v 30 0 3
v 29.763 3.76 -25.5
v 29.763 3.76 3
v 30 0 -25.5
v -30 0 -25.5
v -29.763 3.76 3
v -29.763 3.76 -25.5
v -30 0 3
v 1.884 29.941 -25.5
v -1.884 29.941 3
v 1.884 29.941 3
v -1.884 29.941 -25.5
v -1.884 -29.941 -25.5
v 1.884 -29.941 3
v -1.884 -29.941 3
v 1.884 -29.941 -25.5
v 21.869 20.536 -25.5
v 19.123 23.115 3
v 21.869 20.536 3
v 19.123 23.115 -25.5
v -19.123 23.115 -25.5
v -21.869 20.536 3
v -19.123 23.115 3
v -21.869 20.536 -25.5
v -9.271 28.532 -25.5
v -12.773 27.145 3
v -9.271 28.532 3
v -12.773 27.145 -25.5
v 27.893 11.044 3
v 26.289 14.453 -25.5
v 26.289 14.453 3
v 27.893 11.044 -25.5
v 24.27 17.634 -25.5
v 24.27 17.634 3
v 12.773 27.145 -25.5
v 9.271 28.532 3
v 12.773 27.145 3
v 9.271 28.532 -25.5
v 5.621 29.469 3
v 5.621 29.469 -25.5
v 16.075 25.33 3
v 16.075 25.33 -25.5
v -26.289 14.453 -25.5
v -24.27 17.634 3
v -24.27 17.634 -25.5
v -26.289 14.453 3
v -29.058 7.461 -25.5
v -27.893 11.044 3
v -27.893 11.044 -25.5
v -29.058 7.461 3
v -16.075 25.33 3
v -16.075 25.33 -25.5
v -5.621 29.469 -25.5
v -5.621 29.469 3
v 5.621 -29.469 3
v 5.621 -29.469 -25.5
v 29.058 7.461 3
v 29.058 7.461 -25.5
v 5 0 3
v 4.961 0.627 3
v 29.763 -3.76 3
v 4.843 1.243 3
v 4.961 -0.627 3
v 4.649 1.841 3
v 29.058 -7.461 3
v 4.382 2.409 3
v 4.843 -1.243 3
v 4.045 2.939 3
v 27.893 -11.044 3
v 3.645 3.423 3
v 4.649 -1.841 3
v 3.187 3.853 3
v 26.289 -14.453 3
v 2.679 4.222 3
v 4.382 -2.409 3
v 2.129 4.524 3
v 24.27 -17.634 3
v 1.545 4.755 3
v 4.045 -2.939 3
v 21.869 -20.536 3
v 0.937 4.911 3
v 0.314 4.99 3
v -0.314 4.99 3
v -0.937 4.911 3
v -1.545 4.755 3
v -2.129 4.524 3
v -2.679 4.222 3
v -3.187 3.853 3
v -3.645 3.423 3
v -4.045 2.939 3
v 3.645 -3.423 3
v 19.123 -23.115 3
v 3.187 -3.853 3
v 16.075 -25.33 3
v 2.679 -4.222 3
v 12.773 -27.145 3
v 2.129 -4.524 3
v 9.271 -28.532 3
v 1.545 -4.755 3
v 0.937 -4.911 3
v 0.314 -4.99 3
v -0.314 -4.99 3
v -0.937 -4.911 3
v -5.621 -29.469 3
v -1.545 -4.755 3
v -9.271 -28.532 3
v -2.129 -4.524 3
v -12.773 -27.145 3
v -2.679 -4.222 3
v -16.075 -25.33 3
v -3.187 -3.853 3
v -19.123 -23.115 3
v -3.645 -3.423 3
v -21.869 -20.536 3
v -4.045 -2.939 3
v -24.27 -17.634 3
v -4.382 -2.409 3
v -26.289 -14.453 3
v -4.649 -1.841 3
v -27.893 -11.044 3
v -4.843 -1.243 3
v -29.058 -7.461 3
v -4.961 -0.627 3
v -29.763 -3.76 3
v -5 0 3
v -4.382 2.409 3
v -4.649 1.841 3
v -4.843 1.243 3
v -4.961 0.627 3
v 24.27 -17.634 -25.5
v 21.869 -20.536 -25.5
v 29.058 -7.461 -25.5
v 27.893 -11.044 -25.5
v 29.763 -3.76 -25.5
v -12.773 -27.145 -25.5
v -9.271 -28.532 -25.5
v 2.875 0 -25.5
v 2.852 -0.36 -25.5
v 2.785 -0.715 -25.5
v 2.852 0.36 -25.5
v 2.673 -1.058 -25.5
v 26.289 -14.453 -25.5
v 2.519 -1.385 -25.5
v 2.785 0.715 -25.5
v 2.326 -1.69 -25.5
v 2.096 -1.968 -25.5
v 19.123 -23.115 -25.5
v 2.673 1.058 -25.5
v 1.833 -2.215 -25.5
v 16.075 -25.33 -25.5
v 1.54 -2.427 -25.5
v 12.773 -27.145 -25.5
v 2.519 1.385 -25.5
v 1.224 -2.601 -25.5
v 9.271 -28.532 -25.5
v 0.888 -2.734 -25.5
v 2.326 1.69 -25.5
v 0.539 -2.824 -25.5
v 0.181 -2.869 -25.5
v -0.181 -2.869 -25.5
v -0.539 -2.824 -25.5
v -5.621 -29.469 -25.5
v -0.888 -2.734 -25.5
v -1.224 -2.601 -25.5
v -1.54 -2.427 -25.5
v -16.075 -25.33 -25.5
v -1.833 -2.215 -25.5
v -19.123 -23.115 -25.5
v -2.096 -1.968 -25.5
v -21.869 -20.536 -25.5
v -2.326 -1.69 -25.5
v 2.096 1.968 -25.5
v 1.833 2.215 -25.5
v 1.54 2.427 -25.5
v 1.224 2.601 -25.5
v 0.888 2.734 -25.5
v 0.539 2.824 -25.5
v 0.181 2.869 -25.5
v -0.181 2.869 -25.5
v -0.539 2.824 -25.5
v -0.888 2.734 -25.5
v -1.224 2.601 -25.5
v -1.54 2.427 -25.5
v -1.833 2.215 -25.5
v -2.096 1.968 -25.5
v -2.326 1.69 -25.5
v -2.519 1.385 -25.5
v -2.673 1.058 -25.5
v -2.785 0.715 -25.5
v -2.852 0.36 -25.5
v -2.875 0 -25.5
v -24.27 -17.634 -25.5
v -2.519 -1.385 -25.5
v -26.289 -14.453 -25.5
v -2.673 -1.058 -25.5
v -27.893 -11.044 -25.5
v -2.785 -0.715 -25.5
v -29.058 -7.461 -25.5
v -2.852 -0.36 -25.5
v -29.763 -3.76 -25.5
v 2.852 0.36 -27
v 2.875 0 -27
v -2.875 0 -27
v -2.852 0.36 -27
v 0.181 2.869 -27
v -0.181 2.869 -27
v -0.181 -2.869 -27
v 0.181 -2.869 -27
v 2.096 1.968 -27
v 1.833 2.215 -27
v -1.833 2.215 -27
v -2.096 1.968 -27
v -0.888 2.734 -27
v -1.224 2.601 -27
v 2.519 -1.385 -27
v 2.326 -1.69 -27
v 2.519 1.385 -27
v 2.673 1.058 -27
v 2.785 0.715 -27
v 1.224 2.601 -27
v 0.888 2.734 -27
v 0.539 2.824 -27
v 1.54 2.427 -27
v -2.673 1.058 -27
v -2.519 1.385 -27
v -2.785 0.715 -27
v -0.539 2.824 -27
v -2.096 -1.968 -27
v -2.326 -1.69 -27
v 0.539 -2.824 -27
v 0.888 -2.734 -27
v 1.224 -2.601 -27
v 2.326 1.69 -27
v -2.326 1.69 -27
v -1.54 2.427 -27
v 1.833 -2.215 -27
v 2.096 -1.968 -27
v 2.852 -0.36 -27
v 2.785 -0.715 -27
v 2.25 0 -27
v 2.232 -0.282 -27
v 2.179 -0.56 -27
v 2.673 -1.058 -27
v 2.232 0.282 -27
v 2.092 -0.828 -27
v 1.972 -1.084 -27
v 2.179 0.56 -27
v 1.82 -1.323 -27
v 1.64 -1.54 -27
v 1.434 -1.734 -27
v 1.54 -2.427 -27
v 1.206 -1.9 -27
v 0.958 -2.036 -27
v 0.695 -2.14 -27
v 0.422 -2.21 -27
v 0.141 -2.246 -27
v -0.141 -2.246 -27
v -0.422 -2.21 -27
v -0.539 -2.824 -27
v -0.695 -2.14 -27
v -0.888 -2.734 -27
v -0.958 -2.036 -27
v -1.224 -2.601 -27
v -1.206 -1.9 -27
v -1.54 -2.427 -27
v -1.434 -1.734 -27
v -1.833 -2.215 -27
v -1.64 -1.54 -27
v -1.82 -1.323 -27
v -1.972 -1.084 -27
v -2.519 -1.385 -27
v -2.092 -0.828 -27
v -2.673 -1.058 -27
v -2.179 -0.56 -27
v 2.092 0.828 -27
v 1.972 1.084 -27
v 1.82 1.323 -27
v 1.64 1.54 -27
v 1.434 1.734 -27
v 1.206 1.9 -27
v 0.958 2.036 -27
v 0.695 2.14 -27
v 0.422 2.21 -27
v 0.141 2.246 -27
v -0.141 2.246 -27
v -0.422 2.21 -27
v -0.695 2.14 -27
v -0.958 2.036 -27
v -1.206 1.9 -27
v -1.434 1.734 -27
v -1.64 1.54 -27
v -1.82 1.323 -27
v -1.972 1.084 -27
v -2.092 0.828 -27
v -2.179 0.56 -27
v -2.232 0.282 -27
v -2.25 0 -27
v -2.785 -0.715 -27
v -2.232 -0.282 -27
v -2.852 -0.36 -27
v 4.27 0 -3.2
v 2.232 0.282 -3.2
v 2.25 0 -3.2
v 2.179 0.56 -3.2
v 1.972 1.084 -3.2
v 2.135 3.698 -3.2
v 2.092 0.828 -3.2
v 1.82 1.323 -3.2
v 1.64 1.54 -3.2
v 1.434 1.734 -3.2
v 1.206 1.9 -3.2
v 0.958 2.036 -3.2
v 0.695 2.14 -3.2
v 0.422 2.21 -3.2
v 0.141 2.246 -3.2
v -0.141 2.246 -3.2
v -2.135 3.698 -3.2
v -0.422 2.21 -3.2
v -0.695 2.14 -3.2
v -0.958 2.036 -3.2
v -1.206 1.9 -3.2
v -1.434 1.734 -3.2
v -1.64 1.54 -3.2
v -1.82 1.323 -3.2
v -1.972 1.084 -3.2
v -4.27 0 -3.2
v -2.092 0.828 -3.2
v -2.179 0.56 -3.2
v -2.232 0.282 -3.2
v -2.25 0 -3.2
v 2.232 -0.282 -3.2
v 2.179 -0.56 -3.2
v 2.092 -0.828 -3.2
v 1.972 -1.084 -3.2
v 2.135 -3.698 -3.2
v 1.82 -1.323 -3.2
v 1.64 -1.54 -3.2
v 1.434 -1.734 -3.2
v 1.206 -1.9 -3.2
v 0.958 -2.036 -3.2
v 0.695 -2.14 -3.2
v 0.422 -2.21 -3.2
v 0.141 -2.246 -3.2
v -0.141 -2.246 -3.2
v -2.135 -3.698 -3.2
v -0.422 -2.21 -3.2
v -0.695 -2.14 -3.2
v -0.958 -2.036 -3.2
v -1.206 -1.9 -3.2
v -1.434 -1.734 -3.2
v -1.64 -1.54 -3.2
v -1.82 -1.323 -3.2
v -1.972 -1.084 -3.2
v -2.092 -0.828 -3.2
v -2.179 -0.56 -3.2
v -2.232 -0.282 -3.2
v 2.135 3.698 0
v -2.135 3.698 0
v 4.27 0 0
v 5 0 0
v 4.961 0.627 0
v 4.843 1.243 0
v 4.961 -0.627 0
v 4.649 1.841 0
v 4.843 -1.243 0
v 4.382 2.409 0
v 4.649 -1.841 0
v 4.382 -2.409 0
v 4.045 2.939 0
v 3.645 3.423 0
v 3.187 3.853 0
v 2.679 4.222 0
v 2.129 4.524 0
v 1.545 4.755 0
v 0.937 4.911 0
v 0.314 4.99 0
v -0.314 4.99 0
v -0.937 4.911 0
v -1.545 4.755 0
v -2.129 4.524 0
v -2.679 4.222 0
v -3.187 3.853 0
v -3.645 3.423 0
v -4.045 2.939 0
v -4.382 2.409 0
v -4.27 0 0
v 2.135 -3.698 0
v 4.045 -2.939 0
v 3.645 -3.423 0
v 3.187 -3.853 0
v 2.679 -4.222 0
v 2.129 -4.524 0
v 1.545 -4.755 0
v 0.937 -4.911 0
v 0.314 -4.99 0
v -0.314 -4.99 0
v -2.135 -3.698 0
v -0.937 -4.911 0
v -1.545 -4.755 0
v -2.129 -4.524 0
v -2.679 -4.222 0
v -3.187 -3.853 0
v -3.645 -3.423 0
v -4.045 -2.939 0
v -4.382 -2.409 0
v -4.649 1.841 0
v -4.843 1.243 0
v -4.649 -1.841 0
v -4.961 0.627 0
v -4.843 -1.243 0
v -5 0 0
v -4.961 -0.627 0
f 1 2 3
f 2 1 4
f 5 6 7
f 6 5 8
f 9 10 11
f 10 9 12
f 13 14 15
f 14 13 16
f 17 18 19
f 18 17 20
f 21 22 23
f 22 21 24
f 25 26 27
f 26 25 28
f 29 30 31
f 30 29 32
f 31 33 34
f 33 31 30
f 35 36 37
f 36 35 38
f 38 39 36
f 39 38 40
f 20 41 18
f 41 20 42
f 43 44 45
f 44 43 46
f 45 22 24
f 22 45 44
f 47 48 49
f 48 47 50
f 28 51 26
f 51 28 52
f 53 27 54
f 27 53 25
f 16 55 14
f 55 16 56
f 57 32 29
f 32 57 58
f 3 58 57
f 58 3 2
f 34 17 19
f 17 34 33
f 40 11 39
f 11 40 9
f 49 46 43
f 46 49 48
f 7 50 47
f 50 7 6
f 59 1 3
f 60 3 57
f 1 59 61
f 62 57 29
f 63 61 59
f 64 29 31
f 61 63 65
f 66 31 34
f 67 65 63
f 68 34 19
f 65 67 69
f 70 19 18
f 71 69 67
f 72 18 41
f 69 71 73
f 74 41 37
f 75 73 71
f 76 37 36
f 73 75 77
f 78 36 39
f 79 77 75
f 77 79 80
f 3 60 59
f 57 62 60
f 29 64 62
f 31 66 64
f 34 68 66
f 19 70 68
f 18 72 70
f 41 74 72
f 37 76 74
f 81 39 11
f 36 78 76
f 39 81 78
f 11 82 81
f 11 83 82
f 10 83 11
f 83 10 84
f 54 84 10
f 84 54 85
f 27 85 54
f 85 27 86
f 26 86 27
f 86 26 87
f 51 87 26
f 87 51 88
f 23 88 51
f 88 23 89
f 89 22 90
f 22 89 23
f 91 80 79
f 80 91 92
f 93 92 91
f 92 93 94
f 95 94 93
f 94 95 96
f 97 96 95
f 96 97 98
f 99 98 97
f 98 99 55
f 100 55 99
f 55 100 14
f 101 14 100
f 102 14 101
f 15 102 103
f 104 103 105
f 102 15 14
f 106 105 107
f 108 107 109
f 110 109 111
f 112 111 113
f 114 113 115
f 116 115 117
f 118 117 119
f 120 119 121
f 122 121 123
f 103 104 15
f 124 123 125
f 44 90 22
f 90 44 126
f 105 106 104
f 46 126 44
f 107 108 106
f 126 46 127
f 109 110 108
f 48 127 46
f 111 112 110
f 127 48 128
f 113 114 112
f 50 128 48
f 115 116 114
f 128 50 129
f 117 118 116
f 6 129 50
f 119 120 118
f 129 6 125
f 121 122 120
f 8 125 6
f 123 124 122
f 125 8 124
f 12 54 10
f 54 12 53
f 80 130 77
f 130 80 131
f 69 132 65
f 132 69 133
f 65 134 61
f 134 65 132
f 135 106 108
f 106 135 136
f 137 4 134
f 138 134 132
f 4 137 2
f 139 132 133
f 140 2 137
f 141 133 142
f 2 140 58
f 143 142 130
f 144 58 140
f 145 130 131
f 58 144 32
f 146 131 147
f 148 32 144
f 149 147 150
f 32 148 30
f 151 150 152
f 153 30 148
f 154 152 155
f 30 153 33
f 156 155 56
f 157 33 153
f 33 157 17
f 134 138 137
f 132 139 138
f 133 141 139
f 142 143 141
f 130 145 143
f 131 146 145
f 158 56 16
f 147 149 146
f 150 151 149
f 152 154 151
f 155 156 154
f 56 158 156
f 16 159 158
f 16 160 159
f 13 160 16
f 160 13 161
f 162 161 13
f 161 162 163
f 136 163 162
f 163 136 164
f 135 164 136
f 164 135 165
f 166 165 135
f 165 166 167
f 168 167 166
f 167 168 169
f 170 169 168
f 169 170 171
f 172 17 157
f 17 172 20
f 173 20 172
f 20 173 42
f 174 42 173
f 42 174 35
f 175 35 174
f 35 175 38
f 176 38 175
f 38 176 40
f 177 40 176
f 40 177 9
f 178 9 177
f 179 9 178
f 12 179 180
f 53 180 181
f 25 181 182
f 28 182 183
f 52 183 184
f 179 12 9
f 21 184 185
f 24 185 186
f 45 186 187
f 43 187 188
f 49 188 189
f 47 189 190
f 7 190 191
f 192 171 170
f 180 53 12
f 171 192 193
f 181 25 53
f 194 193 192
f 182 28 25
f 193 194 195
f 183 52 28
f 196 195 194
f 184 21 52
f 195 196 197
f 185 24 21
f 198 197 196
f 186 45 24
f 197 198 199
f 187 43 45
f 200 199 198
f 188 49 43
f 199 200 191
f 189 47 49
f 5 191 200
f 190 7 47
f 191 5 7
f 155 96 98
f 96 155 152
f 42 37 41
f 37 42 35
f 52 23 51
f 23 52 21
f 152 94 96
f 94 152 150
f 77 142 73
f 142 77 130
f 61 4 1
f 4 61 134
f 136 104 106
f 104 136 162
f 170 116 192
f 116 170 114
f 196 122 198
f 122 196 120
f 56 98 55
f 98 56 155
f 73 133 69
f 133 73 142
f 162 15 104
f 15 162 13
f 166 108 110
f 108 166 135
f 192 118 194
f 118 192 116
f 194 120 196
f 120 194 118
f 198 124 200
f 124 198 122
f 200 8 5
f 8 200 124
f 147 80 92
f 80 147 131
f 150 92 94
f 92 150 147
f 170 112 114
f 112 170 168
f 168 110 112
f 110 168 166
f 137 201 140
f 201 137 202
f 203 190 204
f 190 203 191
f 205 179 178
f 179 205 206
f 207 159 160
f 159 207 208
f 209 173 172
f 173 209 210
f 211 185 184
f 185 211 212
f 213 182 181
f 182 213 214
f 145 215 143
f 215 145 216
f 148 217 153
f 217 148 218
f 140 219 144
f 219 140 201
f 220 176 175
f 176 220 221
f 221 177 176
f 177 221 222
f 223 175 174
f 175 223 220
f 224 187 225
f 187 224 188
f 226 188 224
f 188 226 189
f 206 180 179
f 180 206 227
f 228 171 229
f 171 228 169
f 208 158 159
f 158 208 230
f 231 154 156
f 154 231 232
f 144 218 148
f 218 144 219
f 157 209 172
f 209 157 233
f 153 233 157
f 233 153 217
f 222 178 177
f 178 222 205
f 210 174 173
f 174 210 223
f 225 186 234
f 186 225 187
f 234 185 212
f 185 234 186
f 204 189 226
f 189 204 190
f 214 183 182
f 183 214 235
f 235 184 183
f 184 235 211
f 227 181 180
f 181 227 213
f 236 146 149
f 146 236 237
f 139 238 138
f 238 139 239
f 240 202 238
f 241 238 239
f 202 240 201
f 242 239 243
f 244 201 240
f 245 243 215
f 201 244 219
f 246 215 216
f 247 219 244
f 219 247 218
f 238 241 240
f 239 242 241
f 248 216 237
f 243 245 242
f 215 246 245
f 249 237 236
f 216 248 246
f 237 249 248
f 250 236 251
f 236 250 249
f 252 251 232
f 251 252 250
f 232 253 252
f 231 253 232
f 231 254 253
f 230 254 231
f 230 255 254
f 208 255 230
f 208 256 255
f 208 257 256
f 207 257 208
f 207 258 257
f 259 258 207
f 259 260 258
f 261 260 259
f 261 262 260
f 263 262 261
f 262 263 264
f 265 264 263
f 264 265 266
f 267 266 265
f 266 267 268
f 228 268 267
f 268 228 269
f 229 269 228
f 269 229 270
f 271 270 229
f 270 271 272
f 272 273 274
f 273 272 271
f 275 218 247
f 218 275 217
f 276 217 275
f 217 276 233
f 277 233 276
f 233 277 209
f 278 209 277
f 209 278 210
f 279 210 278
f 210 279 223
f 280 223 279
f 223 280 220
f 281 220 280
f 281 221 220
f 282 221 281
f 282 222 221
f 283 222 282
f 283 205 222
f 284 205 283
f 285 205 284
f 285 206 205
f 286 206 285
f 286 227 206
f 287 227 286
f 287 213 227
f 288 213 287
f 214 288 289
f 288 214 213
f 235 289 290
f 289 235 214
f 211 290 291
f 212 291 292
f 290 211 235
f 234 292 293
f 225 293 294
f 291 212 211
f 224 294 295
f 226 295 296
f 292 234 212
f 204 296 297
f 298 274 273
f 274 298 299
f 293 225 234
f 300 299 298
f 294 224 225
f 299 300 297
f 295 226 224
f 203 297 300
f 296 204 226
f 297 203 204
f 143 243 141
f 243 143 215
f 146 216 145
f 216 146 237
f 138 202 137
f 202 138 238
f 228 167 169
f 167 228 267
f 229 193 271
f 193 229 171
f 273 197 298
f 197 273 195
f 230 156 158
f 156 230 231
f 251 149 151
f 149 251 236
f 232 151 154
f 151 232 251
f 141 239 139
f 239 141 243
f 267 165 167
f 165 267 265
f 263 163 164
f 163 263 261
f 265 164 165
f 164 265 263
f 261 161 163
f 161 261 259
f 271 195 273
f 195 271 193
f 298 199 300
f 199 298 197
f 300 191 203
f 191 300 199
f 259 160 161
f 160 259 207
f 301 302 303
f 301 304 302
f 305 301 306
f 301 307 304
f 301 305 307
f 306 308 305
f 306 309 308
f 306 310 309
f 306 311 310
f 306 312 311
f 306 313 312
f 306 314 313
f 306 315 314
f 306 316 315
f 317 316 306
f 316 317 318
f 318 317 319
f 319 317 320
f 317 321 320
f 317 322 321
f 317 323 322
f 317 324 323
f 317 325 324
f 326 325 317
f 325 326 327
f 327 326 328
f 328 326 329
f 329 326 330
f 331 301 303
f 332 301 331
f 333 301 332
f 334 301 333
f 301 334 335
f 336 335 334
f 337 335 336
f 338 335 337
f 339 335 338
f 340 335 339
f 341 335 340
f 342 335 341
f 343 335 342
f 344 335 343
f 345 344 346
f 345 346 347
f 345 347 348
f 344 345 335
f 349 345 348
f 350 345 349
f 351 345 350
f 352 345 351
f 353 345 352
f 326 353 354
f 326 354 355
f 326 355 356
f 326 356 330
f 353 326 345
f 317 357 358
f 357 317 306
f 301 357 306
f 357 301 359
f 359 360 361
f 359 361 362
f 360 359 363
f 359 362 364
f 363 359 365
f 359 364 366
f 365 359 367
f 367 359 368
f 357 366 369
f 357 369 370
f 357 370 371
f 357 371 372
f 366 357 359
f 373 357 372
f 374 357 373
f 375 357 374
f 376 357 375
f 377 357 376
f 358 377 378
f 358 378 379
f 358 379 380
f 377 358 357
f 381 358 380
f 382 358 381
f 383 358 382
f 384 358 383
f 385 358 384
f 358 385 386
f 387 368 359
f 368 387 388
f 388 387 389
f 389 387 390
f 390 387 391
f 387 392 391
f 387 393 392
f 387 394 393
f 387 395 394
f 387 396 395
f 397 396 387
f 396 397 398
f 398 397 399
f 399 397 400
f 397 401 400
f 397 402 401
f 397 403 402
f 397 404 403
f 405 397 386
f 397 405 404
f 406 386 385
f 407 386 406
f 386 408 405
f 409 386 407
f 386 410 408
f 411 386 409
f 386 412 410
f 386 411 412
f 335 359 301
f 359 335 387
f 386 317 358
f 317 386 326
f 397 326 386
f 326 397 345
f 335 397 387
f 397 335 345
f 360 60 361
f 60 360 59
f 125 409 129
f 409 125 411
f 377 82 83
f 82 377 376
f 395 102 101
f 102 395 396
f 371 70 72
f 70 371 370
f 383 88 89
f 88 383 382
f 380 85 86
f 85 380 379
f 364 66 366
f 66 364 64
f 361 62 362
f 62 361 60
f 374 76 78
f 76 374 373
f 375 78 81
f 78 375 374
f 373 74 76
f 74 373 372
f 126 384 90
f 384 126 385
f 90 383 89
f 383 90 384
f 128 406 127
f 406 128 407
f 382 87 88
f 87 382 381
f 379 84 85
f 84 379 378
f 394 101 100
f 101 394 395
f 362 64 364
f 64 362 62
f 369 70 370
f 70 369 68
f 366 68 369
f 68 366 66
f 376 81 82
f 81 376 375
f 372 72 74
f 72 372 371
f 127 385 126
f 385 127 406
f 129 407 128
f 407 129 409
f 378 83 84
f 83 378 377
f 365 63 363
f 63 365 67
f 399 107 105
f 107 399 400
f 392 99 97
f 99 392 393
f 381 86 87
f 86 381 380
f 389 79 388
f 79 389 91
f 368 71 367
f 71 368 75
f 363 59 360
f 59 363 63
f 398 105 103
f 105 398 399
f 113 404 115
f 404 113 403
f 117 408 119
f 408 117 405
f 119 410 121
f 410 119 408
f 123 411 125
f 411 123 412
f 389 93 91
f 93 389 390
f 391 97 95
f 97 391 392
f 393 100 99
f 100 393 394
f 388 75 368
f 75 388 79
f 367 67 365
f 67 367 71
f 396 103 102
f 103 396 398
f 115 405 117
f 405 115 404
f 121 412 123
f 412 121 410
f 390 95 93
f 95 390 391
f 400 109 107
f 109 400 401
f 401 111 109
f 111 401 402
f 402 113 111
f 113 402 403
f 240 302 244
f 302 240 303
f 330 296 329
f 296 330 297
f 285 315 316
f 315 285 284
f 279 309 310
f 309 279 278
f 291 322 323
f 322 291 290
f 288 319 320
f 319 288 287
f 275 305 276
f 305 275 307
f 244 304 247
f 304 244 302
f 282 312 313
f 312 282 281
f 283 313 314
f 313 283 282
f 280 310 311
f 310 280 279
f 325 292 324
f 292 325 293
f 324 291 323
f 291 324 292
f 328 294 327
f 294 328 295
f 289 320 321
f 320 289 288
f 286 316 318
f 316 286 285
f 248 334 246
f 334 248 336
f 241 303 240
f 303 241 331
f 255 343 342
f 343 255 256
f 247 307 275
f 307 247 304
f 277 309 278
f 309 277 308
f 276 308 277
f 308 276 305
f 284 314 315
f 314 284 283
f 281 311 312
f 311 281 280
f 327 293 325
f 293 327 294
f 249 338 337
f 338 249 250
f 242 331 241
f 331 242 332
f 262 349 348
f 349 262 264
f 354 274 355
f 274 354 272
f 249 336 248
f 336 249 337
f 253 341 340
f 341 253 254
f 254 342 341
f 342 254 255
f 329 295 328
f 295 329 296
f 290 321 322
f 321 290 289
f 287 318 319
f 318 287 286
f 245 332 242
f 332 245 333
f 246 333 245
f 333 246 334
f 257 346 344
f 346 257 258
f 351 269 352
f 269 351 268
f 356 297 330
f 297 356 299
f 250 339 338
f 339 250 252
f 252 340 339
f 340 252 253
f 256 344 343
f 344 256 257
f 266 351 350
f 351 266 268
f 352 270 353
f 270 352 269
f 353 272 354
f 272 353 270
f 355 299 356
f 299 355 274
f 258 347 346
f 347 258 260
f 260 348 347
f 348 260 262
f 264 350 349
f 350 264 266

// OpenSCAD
$fn = 50;

difference() {
	union() {
		translate(v = [0, 0, -25.5]) {
			cylinder(h = 28.5, r = 30.0);
		}
		#translate(v = [0, 0, -27.0]) {
			cylinder(h = 27, r = 2.875);
		}
	}
	union() {
		translate(v = [0, 0, 0]) {
			rotate(a = [0, 0, 0]) {
				difference() {
					union() {
						translate(v = [0, 0, -3.2]) {
							linear_extrude(height = 3.2) {
								polygon(points = [[4.2698, 0.0], [2.1349000000000005, 3.697755269078796], [-2.134899999999999, 3.6977552690787965], [-4.2698, 5.228996902999369e-16], [-2.134900000000002, -3.6977552690787956], [2.1348999999999974, -3.697755269078798]]);
							}
						}
					}
					union();
				}
			}
		}
		#cylinder(h = 3, r = 5.0);
		#translate(v = [0, 0, -100.0]) {
			cylinder(h = 200, r = 2.25);
		}
	}
}
